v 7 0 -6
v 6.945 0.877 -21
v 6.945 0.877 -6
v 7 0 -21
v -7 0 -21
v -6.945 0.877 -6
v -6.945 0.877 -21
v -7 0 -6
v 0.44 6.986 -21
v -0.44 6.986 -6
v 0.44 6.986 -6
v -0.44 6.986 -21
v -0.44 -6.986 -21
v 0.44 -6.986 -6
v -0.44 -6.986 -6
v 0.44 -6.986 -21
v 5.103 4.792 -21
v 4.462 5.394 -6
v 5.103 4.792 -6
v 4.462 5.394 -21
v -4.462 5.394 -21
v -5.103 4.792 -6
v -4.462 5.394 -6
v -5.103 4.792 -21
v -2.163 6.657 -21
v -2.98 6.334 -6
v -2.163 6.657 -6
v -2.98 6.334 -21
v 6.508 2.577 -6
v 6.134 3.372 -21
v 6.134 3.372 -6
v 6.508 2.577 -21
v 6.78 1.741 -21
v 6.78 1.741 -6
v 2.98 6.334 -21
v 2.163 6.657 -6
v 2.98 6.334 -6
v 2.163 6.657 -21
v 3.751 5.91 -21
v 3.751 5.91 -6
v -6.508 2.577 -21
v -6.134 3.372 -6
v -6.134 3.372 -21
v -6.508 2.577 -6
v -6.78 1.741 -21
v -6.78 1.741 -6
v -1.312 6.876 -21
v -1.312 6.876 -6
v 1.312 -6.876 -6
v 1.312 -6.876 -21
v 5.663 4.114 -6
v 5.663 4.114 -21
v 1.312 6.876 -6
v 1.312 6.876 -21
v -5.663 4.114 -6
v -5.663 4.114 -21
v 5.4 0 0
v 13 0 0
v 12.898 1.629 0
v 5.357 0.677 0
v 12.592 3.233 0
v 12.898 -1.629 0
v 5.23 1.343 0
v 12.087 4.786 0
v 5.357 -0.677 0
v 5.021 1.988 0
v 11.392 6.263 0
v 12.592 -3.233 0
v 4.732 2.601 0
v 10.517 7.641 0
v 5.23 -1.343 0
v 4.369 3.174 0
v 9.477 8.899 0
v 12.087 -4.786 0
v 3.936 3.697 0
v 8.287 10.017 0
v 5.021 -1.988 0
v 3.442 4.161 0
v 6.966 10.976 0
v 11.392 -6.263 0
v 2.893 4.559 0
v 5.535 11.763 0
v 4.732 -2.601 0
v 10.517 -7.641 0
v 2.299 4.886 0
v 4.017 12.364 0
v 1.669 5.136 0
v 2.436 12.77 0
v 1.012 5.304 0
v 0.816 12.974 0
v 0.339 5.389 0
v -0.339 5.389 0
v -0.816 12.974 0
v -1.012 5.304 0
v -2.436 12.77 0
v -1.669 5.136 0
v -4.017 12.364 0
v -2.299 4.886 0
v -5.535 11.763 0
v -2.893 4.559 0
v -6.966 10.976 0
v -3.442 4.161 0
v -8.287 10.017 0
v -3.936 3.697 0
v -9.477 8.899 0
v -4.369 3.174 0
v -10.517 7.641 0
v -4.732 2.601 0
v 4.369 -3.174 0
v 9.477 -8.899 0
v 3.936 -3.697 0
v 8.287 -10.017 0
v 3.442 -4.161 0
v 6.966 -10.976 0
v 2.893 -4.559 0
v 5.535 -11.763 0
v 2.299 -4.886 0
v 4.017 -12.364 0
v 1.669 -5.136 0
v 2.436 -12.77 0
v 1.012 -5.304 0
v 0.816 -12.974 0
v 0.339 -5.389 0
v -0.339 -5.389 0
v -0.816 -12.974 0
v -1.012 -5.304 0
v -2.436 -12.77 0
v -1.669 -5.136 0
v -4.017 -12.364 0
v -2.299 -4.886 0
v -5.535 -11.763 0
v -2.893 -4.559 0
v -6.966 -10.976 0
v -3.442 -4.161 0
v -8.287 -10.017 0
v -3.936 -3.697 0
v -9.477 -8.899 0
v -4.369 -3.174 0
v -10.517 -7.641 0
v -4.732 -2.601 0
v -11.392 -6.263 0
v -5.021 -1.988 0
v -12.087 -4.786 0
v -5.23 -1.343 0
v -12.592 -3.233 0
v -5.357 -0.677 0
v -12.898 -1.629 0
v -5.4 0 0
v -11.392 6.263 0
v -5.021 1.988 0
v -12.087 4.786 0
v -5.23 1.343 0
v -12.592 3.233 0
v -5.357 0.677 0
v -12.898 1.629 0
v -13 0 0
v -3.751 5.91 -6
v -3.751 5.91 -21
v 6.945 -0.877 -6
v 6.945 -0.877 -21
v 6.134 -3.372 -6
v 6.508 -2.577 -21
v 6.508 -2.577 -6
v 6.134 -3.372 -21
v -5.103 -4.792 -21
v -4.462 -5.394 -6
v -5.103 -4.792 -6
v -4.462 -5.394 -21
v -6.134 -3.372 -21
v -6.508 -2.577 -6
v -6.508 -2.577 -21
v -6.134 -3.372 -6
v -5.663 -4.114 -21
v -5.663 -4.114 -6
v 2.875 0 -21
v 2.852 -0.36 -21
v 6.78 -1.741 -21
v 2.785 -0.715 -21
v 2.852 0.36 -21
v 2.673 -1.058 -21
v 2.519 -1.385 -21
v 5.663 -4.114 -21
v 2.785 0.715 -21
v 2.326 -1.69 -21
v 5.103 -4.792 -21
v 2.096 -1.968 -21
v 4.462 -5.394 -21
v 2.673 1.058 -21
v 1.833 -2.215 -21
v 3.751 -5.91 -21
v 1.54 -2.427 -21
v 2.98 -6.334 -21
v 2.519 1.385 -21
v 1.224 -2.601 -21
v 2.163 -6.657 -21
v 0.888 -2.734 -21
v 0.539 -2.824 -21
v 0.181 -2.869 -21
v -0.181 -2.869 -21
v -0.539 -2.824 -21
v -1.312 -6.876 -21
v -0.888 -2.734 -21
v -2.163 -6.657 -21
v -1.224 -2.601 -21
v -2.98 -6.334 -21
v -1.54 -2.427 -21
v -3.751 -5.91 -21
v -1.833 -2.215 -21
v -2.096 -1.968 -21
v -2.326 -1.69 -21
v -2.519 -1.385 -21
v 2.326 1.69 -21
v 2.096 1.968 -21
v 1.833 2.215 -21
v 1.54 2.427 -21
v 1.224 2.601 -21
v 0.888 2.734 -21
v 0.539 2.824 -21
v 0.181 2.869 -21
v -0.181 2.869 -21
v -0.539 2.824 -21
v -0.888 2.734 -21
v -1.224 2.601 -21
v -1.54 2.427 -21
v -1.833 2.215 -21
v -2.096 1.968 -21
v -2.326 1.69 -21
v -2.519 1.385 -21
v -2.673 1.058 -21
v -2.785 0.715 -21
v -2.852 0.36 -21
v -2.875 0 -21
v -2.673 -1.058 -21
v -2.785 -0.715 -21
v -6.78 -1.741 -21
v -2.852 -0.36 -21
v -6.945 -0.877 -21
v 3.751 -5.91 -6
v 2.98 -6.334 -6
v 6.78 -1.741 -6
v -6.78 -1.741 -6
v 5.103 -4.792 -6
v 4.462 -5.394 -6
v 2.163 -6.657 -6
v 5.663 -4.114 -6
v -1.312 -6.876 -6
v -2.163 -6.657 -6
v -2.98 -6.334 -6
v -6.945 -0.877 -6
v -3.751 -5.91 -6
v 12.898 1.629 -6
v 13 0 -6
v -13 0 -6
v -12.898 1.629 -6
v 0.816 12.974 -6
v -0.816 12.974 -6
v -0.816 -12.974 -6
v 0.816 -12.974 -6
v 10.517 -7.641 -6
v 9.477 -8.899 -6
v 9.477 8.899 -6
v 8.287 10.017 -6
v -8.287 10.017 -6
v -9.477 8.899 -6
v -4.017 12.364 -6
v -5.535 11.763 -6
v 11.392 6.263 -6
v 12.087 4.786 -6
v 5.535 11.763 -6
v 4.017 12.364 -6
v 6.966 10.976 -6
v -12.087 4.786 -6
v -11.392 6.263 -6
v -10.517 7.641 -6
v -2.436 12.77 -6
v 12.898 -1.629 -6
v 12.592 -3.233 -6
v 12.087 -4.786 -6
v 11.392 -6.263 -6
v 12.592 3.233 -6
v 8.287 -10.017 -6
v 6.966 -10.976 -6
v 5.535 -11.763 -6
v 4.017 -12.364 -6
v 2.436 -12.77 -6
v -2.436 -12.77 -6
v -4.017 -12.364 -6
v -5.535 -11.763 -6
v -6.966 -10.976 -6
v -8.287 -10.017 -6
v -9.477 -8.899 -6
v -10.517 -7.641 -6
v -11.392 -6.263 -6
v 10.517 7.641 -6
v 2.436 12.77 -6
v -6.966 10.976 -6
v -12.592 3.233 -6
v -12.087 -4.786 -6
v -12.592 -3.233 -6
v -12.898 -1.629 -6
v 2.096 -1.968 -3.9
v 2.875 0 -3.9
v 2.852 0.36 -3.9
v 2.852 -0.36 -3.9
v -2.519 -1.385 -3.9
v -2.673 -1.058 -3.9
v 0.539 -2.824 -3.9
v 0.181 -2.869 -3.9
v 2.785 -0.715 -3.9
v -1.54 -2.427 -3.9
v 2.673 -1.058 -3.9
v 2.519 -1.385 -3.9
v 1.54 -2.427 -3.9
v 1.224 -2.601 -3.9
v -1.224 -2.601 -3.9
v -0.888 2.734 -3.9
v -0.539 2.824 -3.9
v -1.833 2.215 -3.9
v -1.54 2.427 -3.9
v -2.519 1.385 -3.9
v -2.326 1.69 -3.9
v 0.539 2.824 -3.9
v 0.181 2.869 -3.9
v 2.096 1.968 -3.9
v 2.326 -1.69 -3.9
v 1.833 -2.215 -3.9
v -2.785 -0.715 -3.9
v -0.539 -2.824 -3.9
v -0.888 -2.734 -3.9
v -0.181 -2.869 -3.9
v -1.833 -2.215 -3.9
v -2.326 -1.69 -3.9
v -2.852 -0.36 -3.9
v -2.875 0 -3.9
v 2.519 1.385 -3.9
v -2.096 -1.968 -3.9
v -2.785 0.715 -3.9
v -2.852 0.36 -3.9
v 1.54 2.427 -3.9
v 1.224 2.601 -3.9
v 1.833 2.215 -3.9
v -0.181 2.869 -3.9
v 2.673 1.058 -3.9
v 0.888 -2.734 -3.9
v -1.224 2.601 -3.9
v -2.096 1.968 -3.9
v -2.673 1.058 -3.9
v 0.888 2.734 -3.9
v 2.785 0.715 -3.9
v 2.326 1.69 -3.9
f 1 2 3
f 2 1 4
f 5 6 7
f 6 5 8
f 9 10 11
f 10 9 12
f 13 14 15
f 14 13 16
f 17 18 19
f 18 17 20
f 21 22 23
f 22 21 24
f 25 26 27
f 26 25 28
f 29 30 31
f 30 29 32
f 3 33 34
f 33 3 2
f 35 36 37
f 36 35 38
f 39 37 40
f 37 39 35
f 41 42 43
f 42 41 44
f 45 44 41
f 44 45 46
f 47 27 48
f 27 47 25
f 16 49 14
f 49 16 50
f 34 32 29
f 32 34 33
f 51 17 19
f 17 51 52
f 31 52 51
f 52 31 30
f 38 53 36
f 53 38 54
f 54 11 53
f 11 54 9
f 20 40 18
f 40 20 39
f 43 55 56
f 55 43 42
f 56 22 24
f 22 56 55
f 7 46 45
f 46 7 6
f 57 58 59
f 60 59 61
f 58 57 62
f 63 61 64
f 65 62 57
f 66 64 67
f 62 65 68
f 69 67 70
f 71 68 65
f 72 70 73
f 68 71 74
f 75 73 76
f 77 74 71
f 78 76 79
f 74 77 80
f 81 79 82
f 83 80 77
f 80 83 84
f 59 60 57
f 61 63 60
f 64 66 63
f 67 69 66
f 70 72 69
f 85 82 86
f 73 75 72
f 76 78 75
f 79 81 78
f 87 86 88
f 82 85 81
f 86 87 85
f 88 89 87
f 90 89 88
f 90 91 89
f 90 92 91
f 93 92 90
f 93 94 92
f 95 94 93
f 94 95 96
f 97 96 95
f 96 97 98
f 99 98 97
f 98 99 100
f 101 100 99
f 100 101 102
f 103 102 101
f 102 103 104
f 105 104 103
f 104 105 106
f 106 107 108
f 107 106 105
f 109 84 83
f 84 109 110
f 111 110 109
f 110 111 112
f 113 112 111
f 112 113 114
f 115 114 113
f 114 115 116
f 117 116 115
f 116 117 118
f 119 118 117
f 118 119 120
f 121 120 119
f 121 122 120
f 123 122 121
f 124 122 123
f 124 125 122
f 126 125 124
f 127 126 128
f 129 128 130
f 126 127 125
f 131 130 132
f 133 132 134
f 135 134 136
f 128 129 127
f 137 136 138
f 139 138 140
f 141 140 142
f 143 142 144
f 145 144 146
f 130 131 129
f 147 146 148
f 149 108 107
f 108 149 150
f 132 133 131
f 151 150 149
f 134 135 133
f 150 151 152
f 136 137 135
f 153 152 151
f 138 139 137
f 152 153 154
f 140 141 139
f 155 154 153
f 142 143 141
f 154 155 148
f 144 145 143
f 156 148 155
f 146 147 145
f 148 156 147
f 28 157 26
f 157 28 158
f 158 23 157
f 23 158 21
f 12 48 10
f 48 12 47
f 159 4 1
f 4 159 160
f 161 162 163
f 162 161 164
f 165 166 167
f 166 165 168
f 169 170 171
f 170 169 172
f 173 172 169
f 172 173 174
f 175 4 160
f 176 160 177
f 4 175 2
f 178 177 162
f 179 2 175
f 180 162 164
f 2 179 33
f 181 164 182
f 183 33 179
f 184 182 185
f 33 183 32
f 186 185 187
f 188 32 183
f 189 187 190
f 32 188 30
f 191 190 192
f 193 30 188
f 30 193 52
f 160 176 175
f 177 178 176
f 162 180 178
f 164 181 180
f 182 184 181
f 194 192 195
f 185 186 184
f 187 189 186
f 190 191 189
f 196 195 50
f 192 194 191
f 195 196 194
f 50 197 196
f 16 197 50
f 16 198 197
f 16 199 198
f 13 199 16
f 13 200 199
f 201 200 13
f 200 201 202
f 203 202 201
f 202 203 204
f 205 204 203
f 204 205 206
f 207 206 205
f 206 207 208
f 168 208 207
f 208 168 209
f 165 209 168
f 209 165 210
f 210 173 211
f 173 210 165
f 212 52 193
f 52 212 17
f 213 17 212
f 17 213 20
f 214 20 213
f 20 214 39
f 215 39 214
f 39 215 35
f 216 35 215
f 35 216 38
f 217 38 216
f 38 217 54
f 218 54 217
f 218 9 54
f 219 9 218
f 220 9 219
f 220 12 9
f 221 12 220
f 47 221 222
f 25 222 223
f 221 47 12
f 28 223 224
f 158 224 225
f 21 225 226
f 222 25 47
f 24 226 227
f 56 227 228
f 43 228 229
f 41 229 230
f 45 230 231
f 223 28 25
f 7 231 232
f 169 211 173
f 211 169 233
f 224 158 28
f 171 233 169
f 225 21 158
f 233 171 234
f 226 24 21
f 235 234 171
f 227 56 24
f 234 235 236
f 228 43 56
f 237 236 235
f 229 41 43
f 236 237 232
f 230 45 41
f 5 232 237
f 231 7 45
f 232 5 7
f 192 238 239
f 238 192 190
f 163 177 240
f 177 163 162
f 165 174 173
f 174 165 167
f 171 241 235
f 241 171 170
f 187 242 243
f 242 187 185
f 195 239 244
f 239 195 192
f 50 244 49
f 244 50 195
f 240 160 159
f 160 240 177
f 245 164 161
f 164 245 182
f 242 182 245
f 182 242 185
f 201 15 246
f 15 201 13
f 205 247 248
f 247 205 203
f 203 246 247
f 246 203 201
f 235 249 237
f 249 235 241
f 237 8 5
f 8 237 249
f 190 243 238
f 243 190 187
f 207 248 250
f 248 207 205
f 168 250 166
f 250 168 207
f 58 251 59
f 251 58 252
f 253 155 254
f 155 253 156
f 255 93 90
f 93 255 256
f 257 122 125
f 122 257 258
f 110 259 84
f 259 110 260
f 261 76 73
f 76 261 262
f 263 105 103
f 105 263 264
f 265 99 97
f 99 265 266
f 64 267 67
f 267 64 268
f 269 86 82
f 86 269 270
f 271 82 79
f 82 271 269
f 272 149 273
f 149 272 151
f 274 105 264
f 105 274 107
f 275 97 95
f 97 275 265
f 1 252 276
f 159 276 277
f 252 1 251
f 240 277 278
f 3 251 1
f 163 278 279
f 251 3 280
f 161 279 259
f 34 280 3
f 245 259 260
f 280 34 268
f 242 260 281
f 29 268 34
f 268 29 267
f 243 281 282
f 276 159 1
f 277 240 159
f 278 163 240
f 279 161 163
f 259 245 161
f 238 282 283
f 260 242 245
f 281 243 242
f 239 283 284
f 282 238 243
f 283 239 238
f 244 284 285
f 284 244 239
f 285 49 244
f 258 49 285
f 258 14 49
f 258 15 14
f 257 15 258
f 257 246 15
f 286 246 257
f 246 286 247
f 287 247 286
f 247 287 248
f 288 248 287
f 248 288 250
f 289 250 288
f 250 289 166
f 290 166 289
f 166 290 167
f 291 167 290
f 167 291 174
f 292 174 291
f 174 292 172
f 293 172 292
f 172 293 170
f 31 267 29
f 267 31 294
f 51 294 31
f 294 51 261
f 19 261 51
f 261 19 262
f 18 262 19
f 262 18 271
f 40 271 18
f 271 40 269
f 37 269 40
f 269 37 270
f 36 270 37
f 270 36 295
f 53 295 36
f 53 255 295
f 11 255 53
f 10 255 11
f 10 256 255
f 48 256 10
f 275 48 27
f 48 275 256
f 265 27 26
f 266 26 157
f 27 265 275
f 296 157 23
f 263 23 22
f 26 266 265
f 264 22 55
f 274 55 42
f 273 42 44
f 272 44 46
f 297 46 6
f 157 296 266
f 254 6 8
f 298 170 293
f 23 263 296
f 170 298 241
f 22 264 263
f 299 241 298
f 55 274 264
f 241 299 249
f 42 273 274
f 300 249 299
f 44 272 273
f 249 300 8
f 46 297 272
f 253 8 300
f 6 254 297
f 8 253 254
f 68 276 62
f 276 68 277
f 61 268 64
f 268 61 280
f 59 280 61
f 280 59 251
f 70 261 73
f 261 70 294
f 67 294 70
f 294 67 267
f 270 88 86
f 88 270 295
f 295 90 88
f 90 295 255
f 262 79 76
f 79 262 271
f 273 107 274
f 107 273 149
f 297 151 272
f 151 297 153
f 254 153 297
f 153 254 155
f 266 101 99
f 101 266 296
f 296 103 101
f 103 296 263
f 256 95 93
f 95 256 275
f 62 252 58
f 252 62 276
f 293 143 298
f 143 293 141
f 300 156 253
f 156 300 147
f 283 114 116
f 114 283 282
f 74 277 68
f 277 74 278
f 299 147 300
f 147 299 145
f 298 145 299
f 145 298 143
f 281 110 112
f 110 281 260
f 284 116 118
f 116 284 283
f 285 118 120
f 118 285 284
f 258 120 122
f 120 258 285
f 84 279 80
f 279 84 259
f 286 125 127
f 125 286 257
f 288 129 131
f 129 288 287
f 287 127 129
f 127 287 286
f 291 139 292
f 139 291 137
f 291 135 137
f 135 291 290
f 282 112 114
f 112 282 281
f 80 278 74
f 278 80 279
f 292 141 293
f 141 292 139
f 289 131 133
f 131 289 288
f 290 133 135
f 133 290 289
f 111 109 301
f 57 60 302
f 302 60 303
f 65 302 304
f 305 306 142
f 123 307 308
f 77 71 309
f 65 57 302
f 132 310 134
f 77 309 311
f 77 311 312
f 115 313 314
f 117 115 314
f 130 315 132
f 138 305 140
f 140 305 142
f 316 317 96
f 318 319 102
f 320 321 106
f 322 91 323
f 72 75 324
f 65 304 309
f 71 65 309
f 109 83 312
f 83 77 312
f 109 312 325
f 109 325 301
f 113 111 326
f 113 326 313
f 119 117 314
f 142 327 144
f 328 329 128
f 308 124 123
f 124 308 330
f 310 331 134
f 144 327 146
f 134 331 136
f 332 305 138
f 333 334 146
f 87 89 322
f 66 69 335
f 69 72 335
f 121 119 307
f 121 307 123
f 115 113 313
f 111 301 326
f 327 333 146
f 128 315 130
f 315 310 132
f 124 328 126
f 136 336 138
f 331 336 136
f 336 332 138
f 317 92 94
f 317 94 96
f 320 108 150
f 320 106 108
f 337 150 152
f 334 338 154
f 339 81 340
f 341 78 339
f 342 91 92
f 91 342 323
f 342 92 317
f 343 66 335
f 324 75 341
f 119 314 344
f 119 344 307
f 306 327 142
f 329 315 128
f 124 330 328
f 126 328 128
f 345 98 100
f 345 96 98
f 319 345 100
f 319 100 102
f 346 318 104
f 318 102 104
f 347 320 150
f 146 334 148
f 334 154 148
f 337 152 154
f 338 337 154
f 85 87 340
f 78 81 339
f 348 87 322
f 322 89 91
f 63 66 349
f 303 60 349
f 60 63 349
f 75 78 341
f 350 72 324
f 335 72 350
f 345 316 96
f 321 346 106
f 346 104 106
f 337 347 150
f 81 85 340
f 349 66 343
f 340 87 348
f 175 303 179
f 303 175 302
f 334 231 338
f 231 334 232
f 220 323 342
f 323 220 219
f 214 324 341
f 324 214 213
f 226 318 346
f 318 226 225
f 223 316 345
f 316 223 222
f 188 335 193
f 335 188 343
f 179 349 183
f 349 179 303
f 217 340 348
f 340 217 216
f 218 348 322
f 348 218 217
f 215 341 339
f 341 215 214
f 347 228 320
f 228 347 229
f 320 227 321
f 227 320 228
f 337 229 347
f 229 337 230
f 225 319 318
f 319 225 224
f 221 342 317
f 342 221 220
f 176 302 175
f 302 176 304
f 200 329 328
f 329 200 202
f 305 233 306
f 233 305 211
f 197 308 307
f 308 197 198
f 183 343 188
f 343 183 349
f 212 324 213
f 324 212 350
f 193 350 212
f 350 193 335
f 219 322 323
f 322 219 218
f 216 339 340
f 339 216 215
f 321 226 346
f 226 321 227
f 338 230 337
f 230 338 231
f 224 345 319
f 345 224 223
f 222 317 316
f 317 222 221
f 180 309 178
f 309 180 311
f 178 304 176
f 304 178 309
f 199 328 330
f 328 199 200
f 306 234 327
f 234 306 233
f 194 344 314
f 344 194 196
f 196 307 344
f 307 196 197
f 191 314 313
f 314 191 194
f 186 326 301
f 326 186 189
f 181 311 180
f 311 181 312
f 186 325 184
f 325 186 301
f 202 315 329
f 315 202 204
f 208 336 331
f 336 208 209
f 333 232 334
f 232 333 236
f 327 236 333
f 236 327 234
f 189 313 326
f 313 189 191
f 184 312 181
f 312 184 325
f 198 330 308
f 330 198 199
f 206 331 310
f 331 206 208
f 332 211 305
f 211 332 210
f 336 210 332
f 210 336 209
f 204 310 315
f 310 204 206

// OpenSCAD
$fn = 50;


difference() {
	union() {
		translate(v = [0, 0, -21.0000000000]) {
			cylinder(h = 21, r = 7.0000000000);
		}
		translate(v = [0, 0, -6.0000000000]) {
			cylinder(h = 6, r = 13.0000000000);
		}
	}
	union() {
		translate(v = [0, 0, 0]) {
			rotate(a = [0, 0, 0]) {
				difference() {
					union() {
						#translate(v = [0, 0, -21.0000000000]) {
							cylinder(h = 21, r = 2.6000000000);
						}
						#translate(v = [0, 0, -3.9000000000]) {
							cylinder(h = 3.9000000000, r1 = 2.8750000000, r2 = 5.4000000000);
						}
						#translate(v = [0, 0, -21.0000000000]) {
							cylinder(h = 21, r = 2.8750000000);
						}
						#translate(v = [0, 0, -21.0000000000]) {
							cylinder(h = 21, r = 2.6000000000);
						}
					}
					union();
				}
			}
		}
	}
}
